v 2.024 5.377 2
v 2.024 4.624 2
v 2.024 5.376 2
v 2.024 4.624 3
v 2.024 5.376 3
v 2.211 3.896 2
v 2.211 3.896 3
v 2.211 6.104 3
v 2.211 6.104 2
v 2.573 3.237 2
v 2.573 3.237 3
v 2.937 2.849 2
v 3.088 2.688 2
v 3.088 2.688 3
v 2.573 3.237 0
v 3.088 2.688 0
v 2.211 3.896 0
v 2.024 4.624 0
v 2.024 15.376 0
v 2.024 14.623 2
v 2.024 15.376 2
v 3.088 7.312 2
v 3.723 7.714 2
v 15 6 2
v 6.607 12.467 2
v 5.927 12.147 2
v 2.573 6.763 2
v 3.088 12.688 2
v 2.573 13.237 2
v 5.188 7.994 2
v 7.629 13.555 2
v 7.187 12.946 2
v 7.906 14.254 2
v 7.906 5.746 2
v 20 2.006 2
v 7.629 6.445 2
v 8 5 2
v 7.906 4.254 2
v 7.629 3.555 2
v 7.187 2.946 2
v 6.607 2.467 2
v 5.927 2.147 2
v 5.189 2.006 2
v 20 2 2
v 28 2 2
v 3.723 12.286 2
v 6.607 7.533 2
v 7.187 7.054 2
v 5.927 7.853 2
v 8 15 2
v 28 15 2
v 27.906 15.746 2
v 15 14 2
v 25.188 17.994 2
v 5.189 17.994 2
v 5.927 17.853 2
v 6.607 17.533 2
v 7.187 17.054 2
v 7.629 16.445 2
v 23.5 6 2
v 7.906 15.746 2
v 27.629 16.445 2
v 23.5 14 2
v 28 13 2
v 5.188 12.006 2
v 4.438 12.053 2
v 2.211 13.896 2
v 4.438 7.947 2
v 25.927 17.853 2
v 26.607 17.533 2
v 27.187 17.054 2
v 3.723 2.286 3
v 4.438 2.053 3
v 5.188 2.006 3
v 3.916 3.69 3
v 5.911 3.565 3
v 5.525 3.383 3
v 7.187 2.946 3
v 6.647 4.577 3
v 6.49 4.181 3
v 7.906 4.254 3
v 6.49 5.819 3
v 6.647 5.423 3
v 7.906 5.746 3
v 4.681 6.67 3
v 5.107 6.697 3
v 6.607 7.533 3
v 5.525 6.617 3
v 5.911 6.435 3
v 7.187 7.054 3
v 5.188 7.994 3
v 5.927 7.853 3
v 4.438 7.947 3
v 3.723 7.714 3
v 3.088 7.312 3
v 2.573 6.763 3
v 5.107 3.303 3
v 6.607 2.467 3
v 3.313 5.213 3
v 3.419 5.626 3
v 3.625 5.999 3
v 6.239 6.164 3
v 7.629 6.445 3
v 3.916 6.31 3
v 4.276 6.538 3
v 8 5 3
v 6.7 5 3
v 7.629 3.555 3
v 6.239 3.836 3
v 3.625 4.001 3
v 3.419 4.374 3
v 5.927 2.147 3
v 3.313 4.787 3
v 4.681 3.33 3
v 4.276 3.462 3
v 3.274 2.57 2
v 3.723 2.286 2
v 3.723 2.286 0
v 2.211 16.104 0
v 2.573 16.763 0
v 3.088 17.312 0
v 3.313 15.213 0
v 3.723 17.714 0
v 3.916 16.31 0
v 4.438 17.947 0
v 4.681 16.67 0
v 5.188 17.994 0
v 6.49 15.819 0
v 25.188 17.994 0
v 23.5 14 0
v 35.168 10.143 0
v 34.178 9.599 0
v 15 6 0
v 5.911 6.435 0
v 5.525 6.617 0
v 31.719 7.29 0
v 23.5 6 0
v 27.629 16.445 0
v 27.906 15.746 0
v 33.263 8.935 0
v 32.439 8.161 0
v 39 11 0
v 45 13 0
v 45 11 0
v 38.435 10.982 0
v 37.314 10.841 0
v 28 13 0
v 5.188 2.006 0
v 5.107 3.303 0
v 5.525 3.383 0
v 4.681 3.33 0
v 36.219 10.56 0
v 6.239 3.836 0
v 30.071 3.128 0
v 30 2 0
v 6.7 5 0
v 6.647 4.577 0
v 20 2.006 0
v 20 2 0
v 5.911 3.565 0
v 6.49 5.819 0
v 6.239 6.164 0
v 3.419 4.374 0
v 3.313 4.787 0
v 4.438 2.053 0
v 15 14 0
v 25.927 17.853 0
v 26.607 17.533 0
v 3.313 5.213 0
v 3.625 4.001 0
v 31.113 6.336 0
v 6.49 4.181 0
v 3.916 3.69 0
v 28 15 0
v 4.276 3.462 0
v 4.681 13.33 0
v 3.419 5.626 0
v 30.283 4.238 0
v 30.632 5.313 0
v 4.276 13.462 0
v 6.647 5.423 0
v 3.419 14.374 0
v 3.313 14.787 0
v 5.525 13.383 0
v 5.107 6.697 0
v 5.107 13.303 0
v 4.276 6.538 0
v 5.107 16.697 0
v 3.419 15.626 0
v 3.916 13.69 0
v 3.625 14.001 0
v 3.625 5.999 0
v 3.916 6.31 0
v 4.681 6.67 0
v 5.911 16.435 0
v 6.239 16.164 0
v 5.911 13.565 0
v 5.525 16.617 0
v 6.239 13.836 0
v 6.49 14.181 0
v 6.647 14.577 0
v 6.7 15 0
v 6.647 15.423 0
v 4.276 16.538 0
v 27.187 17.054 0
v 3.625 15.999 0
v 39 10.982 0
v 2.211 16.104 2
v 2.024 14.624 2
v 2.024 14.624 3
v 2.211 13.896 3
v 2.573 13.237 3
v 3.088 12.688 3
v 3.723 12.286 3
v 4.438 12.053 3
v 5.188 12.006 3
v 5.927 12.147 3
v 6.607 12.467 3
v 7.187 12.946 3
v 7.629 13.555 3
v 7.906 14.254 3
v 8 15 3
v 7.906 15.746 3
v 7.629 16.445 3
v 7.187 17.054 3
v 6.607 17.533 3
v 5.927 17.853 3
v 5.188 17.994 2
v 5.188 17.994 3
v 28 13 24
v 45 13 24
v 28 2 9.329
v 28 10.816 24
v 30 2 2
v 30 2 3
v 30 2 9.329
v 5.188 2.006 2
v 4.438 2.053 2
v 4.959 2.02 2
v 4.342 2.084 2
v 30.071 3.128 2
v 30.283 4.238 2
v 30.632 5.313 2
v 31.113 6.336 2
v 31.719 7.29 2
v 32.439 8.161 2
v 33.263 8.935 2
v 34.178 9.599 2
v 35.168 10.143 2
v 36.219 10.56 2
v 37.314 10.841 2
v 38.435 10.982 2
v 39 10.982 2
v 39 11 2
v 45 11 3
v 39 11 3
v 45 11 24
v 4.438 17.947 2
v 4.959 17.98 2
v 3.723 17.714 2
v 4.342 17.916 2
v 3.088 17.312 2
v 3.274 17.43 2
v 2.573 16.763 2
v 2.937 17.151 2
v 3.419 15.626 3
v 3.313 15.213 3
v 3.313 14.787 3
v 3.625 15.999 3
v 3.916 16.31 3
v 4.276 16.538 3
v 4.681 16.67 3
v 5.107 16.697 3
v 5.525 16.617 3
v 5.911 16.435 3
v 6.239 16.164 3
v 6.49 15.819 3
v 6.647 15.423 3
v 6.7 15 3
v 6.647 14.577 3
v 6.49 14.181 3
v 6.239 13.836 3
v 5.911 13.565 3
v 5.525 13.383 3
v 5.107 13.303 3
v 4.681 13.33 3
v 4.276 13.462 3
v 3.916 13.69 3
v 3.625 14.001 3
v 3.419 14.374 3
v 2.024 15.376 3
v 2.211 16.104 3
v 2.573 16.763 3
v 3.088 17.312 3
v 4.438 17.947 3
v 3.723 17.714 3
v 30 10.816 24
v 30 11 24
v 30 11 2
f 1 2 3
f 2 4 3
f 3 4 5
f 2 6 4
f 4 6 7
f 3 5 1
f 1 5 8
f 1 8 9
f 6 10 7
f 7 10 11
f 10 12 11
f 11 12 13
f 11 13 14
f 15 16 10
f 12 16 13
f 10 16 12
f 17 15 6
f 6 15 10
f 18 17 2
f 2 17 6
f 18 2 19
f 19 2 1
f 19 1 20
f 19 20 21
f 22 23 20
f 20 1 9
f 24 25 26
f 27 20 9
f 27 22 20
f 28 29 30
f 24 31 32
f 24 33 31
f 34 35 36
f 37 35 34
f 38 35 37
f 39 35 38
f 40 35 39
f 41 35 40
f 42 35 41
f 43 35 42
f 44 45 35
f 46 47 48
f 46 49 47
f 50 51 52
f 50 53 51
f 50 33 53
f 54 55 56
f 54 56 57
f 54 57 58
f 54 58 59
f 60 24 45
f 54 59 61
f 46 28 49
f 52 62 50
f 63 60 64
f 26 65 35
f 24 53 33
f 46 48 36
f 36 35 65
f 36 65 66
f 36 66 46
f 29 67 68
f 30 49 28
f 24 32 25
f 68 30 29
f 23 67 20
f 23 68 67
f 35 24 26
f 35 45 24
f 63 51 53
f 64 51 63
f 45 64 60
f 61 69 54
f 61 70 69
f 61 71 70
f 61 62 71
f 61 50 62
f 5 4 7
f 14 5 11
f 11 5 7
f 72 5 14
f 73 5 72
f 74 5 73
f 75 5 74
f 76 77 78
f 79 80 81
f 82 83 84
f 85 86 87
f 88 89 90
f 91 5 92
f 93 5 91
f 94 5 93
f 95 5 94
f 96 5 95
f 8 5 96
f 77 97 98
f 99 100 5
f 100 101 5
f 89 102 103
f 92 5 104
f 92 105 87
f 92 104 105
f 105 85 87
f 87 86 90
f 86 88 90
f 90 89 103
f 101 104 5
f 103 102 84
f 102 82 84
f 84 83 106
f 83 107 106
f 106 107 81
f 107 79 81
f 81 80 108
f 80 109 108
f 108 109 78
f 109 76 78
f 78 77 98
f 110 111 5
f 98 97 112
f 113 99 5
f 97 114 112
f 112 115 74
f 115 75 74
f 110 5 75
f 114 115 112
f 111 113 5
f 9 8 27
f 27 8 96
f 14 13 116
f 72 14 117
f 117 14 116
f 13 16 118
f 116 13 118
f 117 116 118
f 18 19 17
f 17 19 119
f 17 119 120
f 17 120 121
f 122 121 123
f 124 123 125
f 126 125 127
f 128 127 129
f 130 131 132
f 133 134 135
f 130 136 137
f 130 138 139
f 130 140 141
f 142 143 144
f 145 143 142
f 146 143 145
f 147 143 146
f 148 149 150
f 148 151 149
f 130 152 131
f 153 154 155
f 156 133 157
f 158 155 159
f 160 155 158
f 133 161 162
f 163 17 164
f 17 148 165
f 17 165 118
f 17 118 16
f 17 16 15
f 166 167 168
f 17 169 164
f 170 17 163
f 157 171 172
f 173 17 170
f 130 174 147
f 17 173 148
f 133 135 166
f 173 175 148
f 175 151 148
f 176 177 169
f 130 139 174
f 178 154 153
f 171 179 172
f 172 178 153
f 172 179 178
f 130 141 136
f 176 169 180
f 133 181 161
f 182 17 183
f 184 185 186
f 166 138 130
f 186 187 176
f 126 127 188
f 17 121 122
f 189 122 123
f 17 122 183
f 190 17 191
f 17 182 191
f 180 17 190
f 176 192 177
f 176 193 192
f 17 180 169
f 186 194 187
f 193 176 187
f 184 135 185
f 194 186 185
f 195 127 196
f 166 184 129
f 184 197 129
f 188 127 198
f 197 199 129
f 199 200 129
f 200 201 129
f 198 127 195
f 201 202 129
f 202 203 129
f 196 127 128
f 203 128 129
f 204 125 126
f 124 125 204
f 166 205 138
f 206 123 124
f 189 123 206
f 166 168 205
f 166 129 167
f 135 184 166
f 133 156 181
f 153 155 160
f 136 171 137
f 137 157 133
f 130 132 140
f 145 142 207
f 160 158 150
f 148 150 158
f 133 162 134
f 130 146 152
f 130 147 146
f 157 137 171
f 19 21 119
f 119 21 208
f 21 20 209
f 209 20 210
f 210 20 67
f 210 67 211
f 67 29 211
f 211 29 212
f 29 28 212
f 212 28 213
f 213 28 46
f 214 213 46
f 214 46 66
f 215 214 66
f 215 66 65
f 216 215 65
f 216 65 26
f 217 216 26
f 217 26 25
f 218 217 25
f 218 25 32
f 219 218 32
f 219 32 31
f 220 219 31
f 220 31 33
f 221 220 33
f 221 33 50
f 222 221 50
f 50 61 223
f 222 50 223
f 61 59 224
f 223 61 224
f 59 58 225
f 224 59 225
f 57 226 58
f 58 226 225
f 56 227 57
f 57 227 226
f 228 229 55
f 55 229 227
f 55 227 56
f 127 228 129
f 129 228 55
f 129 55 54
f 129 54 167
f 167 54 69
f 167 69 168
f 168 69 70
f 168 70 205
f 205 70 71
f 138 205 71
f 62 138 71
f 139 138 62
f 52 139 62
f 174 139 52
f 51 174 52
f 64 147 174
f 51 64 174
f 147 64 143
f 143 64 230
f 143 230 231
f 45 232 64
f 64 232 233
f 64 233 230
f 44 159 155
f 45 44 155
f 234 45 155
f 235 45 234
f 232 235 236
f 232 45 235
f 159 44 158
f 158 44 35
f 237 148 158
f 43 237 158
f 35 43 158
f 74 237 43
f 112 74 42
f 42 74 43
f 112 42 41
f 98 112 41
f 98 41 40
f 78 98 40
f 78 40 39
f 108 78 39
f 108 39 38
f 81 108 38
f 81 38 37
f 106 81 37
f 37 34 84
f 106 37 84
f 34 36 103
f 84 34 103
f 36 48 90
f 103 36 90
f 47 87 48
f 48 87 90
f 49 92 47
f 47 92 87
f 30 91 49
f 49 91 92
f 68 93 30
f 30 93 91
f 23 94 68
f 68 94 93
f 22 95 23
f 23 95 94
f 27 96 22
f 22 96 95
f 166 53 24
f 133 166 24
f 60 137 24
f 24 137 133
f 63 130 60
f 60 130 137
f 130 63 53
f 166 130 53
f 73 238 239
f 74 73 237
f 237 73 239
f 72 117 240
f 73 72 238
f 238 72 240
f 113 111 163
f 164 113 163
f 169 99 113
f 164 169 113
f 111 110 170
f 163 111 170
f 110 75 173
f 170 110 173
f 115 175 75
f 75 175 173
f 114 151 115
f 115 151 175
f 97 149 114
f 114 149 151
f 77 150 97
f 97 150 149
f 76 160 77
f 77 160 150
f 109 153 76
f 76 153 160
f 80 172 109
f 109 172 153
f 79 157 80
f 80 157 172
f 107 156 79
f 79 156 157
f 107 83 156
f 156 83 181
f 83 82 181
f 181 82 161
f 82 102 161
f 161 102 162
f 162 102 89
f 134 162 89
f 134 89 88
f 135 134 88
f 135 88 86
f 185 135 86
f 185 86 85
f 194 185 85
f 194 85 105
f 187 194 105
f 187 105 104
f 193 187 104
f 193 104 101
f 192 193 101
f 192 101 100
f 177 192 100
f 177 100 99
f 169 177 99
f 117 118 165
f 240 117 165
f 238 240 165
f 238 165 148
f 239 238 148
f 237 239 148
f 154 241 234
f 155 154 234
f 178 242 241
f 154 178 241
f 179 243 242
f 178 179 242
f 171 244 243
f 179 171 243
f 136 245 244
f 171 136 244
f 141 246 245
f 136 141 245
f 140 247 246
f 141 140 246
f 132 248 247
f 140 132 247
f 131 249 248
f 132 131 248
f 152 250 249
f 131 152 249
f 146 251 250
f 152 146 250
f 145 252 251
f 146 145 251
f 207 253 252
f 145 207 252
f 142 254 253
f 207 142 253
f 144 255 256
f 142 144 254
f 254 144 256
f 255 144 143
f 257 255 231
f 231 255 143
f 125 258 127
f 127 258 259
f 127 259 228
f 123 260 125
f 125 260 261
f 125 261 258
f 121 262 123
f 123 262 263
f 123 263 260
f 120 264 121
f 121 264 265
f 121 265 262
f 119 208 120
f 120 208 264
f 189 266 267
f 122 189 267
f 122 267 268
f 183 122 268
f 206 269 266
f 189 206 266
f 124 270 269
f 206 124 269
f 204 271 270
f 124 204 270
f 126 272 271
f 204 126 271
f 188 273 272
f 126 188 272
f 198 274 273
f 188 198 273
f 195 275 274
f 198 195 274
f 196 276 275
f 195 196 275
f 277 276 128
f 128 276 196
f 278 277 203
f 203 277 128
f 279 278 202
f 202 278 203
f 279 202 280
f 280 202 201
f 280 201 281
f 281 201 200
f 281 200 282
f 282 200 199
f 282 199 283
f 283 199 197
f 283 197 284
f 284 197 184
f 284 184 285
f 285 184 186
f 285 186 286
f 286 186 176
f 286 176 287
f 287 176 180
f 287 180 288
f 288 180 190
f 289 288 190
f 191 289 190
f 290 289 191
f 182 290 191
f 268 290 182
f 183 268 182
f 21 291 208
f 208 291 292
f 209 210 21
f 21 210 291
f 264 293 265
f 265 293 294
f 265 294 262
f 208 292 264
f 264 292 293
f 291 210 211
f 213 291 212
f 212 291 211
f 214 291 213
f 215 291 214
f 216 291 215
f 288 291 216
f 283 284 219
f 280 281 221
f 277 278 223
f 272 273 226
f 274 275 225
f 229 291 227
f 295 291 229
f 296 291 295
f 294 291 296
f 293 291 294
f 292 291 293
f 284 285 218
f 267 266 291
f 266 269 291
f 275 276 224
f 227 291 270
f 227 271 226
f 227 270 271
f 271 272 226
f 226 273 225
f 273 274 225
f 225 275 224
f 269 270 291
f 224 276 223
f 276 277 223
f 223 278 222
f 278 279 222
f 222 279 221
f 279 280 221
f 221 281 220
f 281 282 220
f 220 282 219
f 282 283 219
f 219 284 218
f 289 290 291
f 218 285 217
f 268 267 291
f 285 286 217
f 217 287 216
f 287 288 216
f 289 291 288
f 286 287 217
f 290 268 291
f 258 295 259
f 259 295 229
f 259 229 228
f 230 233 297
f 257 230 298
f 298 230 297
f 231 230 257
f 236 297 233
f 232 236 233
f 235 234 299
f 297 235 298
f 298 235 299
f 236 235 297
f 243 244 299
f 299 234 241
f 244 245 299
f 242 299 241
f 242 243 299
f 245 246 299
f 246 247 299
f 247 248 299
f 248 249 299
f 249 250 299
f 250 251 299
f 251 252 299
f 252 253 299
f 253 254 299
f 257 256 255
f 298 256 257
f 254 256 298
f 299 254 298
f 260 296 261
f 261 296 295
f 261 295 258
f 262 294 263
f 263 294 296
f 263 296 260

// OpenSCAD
// X-axis homing target for dc42's modulated IR

$fn=25;
thickness = 2;
padWidth=17;
padOffset = 28;
padHeight=11;
padDepth=22;
overlap=1;


difference() {
	union() {
		translate([15,10,0]) roundedRect([23,13,thickness], 3);
		translate([20,2,0]) cube([padOffset+padWidth-20,padHeight,thickness]);
		translate([padOffset,padHeight+2-thickness,thickness])
			cube([padWidth,thickness,padDepth]);
      	translate([padOffset,2,thickness])
			cube([thickness,padHeight,padDepth]);
		translate([5,5,thickness]) cylinder(h=1,r=3);
		translate([5,15,thickness]) cylinder(h=1,r=3);
	}
	translate([5,5,-overlap]) cylinder(h=thickness+1+2*overlap,r=1.7);
	translate([5,15,-overlap]) cylinder(h=thickness+1+2*overlap,r=1.7);
	translate([15,6,-overlap]) cube([8.5,8,thickness+2*overlap]);
	translate([padOffset-overlap,0,6])
		rotate([59,0,0]) cube([thickness+2*overlap,30,30]);
	translate([padOffset+thickness+9,2,-overlap]) cylinder(h=thickness+2*overlap,r=9,$fn=50);
	translate([padOffset+thickness+9,0,-overlap]) cube([10,11,thickness+2*overlap]);
}

module roundedRect(size, radius)
{
	x = size[0];
	y = size[1];
	z = size[2];

	linear_extrude(height=z)
	hull()
	{
		// place 4 circles in the corners, with the given radius
		translate([(-x/2)+(radius/2), (-y/2)+(radius/2), 0])
		circle(r=radius);
	
		translate([(x/2)-(radius/2), (-y/2)+(radius/2), 0])
		circle(r=radius);
	
		translate([(-x/2)+(radius/2), (y/2)-(radius/2), 0])
		circle(r=radius);
	
		translate([(x/2)-(radius/2), (y/2)-(radius/2), 0])
		circle(r=radius);
	}
}
